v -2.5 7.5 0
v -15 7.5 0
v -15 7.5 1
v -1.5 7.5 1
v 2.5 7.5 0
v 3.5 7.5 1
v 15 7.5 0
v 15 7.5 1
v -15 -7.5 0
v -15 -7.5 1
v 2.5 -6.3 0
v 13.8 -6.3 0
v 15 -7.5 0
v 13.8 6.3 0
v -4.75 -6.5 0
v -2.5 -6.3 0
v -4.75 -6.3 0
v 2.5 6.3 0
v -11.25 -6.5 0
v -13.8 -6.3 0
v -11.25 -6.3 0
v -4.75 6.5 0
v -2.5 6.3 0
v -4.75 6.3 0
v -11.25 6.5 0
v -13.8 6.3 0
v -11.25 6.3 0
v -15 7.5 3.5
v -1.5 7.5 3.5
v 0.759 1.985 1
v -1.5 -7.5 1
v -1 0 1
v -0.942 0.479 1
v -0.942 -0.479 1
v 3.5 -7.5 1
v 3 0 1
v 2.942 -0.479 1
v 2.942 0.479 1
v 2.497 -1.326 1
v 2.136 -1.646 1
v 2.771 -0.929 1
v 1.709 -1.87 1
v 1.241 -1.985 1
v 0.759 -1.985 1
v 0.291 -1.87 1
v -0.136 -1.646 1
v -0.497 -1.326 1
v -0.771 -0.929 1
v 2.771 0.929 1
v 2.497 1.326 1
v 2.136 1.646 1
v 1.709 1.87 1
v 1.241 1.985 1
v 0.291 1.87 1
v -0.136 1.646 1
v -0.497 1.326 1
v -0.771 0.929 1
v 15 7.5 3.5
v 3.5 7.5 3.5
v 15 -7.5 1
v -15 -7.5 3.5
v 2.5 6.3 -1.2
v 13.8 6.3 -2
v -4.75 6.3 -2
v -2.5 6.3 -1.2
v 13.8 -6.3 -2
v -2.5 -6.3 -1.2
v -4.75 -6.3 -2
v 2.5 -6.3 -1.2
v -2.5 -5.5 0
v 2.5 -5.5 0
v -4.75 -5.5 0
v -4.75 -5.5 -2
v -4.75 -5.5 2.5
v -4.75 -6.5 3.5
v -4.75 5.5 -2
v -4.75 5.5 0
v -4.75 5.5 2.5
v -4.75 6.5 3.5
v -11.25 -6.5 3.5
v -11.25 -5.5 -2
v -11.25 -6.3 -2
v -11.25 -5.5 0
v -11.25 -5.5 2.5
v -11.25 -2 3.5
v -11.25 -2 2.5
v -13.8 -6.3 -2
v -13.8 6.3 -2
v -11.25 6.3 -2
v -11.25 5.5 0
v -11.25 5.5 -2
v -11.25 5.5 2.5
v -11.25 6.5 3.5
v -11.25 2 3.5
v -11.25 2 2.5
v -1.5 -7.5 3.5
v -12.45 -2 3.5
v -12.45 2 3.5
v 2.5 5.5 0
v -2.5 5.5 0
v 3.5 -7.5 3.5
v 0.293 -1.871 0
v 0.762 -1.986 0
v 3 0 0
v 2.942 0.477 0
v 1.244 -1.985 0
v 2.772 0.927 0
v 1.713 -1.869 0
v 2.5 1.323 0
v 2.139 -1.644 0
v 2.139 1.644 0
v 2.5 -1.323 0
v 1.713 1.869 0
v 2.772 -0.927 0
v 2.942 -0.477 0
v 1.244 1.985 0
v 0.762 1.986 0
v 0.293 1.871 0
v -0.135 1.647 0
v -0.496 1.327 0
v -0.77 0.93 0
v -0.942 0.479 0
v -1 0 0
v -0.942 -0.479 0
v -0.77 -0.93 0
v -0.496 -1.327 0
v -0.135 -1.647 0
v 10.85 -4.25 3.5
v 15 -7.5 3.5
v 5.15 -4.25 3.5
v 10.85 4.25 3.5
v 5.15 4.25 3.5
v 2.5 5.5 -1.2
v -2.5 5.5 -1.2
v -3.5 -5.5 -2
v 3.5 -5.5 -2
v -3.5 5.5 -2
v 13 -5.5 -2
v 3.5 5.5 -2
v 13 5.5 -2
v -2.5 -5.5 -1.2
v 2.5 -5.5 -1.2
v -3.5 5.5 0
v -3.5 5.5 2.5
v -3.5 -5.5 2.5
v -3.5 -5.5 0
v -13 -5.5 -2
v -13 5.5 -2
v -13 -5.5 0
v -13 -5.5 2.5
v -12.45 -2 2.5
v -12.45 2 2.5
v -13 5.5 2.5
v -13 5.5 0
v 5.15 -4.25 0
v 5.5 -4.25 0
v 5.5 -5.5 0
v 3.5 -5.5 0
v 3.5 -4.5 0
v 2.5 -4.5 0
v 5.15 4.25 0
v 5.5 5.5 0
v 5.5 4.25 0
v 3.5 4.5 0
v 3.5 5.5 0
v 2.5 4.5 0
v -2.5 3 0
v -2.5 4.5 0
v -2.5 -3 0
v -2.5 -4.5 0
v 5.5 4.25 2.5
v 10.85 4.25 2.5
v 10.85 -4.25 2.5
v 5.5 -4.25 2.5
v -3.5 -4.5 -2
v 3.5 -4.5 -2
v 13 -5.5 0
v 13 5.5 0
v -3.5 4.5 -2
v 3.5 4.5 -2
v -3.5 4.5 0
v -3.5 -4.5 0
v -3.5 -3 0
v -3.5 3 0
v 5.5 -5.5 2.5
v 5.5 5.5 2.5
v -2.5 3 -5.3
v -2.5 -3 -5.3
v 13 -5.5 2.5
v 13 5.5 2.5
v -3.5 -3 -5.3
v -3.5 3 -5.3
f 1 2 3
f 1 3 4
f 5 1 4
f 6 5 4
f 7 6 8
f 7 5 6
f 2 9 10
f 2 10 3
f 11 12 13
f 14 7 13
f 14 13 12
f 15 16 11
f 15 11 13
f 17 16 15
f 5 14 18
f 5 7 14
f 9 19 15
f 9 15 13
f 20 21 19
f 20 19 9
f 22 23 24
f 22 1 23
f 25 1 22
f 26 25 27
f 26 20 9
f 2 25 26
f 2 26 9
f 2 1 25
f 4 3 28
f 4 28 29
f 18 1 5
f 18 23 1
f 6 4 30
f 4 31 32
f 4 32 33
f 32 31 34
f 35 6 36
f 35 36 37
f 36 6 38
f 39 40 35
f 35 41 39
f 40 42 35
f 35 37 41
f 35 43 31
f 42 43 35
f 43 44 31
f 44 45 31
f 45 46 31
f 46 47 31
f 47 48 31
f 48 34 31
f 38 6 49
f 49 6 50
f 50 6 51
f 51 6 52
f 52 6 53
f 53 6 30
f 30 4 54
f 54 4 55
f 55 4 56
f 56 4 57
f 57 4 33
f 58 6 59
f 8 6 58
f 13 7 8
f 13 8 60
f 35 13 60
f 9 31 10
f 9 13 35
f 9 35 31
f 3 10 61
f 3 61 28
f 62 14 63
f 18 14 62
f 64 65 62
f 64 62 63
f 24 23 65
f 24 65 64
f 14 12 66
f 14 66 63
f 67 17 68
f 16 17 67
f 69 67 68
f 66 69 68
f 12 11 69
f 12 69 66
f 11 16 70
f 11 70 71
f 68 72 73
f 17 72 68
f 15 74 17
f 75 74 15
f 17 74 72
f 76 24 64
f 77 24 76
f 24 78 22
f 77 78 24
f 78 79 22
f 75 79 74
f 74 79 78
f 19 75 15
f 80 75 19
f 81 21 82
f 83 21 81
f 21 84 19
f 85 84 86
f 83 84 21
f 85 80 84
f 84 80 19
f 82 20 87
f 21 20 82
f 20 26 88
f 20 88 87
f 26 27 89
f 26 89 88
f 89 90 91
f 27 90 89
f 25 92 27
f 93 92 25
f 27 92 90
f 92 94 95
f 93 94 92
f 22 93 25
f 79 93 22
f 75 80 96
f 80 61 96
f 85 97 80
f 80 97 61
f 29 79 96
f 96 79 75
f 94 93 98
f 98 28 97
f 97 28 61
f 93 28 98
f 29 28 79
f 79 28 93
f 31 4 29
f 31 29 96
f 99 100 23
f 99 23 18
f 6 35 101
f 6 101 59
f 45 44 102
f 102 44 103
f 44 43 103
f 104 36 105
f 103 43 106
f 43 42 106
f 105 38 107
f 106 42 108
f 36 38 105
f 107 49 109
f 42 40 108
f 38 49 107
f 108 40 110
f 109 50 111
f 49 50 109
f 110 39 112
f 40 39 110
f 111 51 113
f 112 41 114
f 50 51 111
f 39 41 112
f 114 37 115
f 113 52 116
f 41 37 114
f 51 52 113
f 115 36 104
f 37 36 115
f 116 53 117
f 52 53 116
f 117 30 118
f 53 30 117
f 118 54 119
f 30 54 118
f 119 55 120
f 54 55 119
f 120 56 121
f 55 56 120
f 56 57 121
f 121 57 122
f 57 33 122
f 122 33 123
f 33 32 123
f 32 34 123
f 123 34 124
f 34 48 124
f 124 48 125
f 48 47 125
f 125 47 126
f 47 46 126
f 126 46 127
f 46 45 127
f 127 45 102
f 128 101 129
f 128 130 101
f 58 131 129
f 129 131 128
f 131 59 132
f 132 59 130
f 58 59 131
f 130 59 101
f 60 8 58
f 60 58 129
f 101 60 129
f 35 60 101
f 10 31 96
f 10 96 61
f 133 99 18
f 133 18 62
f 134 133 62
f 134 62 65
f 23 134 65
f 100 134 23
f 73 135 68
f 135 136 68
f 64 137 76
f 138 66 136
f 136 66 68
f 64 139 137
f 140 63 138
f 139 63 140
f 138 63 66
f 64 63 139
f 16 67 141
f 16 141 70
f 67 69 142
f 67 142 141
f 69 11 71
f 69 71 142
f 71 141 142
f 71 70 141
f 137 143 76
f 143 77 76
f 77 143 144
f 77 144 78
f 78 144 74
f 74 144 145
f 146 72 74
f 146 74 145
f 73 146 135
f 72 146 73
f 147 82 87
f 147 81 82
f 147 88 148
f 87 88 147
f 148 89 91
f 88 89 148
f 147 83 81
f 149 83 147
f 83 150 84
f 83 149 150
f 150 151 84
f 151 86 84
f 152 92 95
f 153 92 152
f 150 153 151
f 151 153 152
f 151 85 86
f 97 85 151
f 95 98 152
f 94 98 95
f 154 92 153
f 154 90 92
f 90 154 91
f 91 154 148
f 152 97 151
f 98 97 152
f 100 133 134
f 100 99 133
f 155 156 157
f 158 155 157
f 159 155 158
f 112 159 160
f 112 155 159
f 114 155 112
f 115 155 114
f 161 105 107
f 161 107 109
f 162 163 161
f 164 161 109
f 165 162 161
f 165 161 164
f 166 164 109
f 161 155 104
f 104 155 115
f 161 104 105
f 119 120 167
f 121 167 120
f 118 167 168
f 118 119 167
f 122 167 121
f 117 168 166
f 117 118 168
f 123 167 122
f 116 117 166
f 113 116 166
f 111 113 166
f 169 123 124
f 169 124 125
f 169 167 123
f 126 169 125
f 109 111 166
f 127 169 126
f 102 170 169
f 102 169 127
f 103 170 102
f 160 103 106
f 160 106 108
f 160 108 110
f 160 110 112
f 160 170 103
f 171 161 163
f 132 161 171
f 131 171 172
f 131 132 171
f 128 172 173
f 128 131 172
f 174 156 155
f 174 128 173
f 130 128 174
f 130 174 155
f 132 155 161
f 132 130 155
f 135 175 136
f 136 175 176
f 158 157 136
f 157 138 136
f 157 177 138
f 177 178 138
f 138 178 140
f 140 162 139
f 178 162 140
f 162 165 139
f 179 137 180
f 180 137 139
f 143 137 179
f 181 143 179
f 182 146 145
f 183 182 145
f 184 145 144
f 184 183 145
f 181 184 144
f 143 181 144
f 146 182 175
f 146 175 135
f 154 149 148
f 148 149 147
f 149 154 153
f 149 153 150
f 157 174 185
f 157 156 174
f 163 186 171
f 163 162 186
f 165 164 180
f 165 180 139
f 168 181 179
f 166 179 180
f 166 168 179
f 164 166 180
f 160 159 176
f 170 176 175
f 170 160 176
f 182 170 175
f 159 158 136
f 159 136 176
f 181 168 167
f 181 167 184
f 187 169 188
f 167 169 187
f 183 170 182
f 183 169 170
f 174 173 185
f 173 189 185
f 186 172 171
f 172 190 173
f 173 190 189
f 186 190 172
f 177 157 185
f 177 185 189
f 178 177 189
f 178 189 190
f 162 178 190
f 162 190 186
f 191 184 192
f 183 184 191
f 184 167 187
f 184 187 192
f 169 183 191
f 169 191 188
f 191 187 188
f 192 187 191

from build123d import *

# Parameters (mm, degrees)
SKETCH_W        = 30
SKETCH_H        = 15
PAD_DEPTH       = 1
SKETCH001_W     = 13.5
SKETCH001_H     = 15
SKETCH001_W_2   = 11.5
PAD001_DEPTH    = 2.5
SKETCH002_W     = 9.5
SKETCH002_H     = 11
SKETCH002_W_2   = 7.5
POCKET_DEPTH    = 2.5
SKETCH003_W     = 27.6
SKETCH003_H     = 12.6
SKETCH003_W_2   = 26
SKETCH003_H_2   = 11
PAD002_DEPTH    = 2
SKETCH004_W     = 5
SKETCH004_H     = 1.2
POCKET001_DEPTH = 13.801
SKETCH005_R     = 2
SKETCH005_W     = 5.7
SKETCH005_H     = 8.5
POCKET002_DEPTH = 5.501
SKETCH006_W     = 1
SKETCH006_H     = 6
PAD003_DEPTH    = 5.3
SKETCH007_W     = 7
SKETCH007_H     = 1
PAD004_DEPTH    = 2


with BuildPart() as part:
    # Sketch → Pad (new body)
    with BuildSketch(Plane.XY):
        Rectangle(SKETCH_W, SKETCH_H)
    extrude(amount=PAD_DEPTH)

    # Sketch001 (on Face6 of Pad) → Pad001 (join)
    with BuildSketch(Plane.XY.offset(1)):
        with Locations((-8.25, 0)):
            Rectangle(SKETCH001_W, SKETCH001_H)
        with Locations((9.25, 0)):
            Rectangle(SKETCH001_W_2, SKETCH001_H)
    extrude(amount=PAD001_DEPTH)

    # Sketch002 (on Face1 of Pad001) → Pocket (cut)
    with BuildSketch(Plane(origin=(0, 0, 0), x_dir=(1, 0, 0), z_dir=(0, 0, -1))):
        with Locations((-8.25, 0)):
            Rectangle(SKETCH002_W, SKETCH002_H)
        with Locations((9.25, 0)):
            Rectangle(SKETCH002_W_2, SKETCH002_H)
    extrude(amount=-POCKET_DEPTH, mode=Mode.SUBTRACT)

    # Sketch003 (on Face1 of Pocket) → Pad002 (join)
    with BuildSketch(Plane(origin=(0, 0, 0), x_dir=(1, 0, 0), z_dir=(0, 0, -1))):
        Rectangle(SKETCH003_W, SKETCH003_H)
        Rectangle(SKETCH003_W_2, SKETCH003_H_2, mode=Mode.SUBTRACT)
    extrude(amount=PAD002_DEPTH)

    # Sketch004 (on Face13 of Pad002) → Pocket001 (cut, through all)
    with BuildSketch(Plane.XZ.offset(6.3)):
        with Locations((0, -0.6)):
            Rectangle(SKETCH004_W, SKETCH004_H)
    extrude(amount=-POCKET001_DEPTH, mode=Mode.SUBTRACT)

    # Sketch005 (on Face16 of Pocket001) → Pocket002 (cut, through all)
    with BuildSketch(Plane.XY.offset(3.5)):
        with Locations((1, 0)):
            Circle(SKETCH005_R)
        with Locations((8, 0)):
            Rectangle(SKETCH005_W, SKETCH005_H)
        Polygon((-11.25, 6.5), (-11.25, 2), (-12.45, 2), (-12.45, -2), (-11.25, -2), (-11.25, -6.5), (-4.75, -6.5), (-4.75, 6.5), align=None)
    extrude(amount=-POCKET002_DEPTH, mode=Mode.SUBTRACT)

    # Sketch006 (on Face60 of Pocket002) → Pad003 (join)
    with BuildSketch(Plane(origin=(0, 0, 0), x_dir=(1, 0, 0), z_dir=(0, 0, -1))):
        with Locations((-3, 0)):
            Rectangle(SKETCH006_W, SKETCH006_H)
    extrude(amount=PAD003_DEPTH)

    # Sketch007 (on Face39 of Pad003) → Pad004 (join)
    with BuildSketch(Plane(origin=(0, 0, 0), x_dir=(1, 0, 0), z_dir=(0, 0, -1))):
        with Locations((0, 5)):
            Rectangle(SKETCH007_W, SKETCH007_H)
        with Locations((0, -5)):
            Rectangle(SKETCH007_W, SKETCH007_H)
    extrude(amount=PAD004_DEPTH)


solid = part.part
